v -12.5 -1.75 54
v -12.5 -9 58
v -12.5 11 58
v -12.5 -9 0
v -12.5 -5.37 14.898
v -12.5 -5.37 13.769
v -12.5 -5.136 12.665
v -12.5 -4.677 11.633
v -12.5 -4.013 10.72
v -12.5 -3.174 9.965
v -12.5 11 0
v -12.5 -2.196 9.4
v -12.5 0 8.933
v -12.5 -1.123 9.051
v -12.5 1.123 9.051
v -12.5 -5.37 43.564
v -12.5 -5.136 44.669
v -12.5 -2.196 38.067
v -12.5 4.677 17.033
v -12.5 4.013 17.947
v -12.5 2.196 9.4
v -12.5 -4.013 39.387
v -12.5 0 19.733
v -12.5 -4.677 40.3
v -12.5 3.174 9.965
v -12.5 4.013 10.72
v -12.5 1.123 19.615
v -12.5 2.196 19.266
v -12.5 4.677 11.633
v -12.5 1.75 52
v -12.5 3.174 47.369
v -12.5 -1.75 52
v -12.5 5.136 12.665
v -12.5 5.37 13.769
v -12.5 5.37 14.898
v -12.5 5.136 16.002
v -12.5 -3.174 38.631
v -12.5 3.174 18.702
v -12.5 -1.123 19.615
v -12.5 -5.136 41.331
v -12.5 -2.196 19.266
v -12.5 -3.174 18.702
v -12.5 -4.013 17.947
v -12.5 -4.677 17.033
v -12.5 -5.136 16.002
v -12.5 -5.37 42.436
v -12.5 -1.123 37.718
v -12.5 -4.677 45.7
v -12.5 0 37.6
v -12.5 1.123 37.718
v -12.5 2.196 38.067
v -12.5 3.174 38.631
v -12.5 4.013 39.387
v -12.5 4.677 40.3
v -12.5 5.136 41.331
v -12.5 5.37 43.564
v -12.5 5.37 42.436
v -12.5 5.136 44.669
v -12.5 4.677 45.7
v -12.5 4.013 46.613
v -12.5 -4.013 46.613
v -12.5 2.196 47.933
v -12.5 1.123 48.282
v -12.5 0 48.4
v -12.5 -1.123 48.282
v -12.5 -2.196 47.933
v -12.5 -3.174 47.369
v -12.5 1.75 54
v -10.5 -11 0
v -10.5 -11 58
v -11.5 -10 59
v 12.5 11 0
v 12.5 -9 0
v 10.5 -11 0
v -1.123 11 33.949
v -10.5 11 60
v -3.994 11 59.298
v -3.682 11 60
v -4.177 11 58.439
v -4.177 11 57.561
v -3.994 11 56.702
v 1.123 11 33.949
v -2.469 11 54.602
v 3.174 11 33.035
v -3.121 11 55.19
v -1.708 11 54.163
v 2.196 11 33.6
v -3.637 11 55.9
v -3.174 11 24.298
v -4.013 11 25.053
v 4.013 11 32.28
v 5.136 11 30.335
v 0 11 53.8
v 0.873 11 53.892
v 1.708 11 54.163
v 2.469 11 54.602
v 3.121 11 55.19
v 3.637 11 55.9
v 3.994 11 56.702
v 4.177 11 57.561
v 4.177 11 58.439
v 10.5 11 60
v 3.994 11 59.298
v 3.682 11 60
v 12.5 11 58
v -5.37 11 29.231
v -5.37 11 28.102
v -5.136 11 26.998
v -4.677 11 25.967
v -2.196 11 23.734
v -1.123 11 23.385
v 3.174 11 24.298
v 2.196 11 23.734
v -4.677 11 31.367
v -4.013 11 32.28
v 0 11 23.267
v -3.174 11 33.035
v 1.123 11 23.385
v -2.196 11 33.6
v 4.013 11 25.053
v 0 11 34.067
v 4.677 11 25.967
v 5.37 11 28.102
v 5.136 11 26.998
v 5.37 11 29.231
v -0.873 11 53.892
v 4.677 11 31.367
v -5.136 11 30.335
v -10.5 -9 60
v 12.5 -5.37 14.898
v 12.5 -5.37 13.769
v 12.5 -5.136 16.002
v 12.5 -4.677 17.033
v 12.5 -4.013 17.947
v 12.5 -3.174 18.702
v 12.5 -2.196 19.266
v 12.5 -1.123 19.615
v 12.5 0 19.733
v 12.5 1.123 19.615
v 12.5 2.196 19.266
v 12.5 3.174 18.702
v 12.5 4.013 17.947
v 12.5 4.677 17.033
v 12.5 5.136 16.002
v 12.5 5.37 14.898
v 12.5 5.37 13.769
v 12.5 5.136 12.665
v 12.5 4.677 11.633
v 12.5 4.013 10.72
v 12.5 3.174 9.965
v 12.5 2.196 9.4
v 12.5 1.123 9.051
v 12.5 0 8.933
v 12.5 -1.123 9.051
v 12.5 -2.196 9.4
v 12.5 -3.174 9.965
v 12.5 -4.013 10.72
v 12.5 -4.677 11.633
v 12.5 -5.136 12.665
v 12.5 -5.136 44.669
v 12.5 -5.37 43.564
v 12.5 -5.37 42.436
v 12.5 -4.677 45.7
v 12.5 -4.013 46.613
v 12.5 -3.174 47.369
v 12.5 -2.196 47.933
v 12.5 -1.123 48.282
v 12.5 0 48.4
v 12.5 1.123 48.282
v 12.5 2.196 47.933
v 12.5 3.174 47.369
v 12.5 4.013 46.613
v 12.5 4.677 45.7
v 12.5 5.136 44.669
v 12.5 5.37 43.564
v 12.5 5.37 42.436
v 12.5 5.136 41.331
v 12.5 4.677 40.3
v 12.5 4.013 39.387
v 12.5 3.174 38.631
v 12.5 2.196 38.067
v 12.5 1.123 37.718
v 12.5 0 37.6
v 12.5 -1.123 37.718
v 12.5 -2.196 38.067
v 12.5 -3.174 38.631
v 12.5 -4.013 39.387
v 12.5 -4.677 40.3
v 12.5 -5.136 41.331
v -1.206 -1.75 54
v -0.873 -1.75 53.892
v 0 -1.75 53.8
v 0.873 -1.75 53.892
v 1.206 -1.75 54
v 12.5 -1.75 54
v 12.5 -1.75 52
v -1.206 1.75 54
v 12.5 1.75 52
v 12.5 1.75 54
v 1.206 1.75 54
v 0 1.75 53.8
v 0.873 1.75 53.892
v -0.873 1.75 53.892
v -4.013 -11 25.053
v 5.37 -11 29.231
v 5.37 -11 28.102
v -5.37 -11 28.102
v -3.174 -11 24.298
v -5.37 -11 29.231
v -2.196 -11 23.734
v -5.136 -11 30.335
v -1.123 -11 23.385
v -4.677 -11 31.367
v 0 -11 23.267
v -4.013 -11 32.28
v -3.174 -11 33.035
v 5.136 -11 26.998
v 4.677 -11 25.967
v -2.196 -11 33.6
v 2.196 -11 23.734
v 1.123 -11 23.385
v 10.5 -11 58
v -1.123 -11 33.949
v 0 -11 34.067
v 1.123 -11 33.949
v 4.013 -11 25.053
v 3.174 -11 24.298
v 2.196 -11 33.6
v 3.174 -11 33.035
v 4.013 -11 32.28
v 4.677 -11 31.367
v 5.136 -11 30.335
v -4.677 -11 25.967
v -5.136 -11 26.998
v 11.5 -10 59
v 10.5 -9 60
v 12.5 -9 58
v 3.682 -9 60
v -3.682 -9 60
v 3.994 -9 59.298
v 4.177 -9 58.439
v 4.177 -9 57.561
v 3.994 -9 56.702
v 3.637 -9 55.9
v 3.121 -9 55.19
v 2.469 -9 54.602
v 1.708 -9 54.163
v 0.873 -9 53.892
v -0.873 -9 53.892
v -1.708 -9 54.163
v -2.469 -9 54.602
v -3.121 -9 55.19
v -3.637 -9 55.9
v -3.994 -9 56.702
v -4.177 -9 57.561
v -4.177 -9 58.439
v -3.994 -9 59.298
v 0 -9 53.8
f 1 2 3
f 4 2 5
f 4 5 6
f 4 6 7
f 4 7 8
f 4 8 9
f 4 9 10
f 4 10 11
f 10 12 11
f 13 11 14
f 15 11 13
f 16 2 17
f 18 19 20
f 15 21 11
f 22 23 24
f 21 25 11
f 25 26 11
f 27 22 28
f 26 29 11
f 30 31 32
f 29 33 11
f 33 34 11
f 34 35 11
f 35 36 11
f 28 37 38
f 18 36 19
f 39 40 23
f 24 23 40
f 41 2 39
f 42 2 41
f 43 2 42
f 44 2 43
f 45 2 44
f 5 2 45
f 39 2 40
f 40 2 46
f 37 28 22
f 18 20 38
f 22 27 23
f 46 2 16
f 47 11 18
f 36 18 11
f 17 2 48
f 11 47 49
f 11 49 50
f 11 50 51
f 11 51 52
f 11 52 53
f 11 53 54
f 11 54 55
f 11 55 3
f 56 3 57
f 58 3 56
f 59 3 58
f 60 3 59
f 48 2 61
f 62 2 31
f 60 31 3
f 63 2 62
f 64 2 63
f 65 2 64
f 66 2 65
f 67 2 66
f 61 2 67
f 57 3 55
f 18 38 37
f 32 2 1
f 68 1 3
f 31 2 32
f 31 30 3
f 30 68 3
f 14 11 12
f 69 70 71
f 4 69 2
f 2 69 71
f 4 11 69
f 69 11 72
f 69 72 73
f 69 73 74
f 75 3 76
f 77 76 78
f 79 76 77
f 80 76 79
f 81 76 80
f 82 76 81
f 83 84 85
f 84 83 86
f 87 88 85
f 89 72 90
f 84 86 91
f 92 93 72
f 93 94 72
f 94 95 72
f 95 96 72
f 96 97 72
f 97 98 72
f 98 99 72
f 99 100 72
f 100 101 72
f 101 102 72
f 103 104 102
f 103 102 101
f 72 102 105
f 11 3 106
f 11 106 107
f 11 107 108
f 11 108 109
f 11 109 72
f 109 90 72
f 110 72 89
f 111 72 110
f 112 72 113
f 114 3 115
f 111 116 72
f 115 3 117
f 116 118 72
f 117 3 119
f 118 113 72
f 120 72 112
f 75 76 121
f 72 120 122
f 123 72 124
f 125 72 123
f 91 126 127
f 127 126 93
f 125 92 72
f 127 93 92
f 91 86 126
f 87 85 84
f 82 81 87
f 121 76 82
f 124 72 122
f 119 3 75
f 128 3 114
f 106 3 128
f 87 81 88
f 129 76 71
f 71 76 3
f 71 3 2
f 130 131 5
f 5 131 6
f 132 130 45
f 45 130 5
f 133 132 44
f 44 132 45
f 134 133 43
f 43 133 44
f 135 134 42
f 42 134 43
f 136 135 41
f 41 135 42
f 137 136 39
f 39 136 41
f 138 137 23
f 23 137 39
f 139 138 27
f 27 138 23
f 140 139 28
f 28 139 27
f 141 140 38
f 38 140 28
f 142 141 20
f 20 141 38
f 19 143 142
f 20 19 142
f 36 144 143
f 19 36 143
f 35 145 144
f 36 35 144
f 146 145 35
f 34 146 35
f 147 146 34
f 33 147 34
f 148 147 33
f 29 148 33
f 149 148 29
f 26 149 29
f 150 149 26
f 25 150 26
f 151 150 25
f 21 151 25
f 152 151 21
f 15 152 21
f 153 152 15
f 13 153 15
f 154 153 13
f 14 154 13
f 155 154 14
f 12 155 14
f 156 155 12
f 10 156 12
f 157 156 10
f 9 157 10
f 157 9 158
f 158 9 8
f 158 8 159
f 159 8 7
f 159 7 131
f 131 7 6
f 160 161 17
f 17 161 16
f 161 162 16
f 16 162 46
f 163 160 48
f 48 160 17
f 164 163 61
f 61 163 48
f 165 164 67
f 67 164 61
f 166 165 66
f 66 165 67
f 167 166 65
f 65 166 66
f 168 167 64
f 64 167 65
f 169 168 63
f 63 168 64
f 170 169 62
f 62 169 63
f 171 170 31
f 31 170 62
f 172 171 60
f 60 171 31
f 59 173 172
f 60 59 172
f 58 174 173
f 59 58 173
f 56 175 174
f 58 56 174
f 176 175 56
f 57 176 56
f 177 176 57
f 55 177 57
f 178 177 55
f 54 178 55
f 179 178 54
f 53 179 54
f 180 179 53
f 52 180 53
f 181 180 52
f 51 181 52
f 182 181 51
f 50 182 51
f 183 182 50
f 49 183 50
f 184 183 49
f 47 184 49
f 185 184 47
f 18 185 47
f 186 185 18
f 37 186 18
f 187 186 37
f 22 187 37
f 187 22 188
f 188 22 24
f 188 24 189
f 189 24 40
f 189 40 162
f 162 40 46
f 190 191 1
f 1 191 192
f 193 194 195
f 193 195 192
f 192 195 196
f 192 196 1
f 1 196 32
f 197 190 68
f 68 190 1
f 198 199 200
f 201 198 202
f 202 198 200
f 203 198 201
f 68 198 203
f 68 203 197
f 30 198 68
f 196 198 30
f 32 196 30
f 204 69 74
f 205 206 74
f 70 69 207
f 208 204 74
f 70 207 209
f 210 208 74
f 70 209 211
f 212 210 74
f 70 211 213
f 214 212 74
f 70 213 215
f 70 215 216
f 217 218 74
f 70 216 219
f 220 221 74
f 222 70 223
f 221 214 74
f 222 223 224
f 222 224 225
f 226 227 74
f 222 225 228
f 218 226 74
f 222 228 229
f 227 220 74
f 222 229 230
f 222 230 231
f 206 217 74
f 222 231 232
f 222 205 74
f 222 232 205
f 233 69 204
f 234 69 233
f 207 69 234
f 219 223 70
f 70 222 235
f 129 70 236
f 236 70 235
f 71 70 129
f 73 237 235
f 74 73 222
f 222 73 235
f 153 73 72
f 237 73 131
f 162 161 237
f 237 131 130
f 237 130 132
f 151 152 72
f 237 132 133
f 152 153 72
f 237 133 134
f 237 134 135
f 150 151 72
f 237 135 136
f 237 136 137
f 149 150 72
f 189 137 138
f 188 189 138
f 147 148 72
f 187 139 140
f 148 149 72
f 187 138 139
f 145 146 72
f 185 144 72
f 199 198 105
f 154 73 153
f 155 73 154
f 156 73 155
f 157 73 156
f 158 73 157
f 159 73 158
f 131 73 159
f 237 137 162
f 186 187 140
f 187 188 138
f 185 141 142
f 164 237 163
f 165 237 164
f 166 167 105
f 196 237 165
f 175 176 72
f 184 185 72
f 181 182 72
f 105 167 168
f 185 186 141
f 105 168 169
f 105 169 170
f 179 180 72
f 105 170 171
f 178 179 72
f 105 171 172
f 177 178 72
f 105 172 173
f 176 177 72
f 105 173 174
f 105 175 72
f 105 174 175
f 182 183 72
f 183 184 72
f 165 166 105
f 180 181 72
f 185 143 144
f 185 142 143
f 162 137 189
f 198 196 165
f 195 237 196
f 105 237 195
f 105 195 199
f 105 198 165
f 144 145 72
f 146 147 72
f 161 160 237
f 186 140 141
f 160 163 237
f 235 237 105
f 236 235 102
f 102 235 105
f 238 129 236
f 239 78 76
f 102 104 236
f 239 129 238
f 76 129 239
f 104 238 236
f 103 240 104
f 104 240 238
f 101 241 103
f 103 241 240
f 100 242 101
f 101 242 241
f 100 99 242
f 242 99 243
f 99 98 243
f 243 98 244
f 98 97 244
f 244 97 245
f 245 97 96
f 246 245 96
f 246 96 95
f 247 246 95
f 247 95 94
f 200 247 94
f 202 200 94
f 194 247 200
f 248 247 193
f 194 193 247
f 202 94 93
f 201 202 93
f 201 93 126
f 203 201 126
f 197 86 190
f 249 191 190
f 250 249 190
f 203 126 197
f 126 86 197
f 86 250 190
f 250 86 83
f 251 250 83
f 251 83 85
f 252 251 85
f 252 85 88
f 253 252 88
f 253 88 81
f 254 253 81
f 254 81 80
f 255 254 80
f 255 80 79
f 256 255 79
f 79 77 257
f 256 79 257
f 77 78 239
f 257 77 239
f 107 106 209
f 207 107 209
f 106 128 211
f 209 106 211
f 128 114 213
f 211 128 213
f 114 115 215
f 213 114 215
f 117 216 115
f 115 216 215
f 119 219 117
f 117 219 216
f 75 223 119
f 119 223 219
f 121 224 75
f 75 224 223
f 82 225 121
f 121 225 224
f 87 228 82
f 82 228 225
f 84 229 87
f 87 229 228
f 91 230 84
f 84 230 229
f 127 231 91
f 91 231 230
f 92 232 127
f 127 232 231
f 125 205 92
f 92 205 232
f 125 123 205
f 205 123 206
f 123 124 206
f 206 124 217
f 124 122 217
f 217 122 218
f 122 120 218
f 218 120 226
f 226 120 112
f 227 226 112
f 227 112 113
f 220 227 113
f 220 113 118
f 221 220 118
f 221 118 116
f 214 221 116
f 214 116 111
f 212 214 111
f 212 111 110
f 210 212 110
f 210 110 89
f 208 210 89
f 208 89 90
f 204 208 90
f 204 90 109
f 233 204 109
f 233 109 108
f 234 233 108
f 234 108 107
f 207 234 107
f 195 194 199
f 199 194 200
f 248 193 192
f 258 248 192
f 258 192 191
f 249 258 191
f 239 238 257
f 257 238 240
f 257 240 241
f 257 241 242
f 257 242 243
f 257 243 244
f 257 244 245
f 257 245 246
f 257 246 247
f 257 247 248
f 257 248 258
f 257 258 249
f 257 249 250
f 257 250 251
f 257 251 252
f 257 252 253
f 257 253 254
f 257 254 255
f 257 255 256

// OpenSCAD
// PRUSA iteration3
// Y frame corners
// GNU GPL v3
// Josef Průša <iam@josefprusa.cz> and contributors
// http://www.reprap.org/wiki/Prusa_Mendel
// http://prusamendel.org

eps = 0.01;

height = 60; //47;
width = 25; //18;
depth = 22; //22;
r_hole = 5.4;

hole_distance = (height - 17) / 3;

bevel_cube = 100; // size not important, as long as big enough
bevel_cube_offset = bevel_cube/2 * cos(45);
bevel_cut = 1;

ziptie_height = 2.0;
ziptie_width = 3.5;



module corner_base(){
 translate([-width/2,-depth/2,0])cube([width,depth,height]);
}

module corner_holes(){
 translate([0,-depth/2,0]){
  // Bottom hole
  translate([0,depth/2,hole_distance]) rotate([0,90,0]) translate([0,0,-width/2-eps]) cylinder(h = width+2*eps, r=r_hole, $fn=30);
  // Top hole
  translate([0,depth/2,3*hole_distance]) rotate([0,90,0]) translate([0,0,-width/2-eps]) cylinder(h = width+2*eps, r=r_hole, $fn=30);
  // Middle hole
  translate([0,-eps,2*hole_distance]) rotate([0,0,90]) rotate([0,90,0]) cylinder(h = depth+2*eps, r=r_hole, $fn=30);

  // Washer hole
//  translate([0,-3,2*hole_distance]) rotate([0,0,90]) rotate([0,90,0]) translate([0,0,-5]) cylinder(h = 10, r=2*r_hole+0.2, $fn=30);

  // Top smooth rod insert
  // Smooth rod place
  translate([0,2,height-2]) rotate([0,90,90]) cylinder(h = depth, r=4.2, $fn=30);
  // Ziptie
  translate([-width/2-eps,depth/2-ziptie_width/2,height-8]) cube([width+2*eps,ziptie_width,ziptie_height]);
 }
}

module corner_fancy(){
  // Side corner cutouts
  translate([width/2+bevel_cube_offset-bevel_cut,-depth/2-bevel_cube_offset+bevel_cut,height/2]) rotate([0,0,-45-180]) translate([-bevel_cube/2,-bevel_cube/2,-bevel_cube/2]) cube([bevel_cube,bevel_cube,bevel_cube]);
  translate([-width/2-bevel_cube_offset+bevel_cut,-depth/2-bevel_cube_offset+bevel_cut,height/2]) rotate([0,0,45-180]) translate([-bevel_cube/2,-bevel_cube/2,-bevel_cube/2]) cube([bevel_cube,bevel_cube,bevel_cube]);

 // Top corner cutouts
  translate([width/2+bevel_cube_offset-bevel_cut,0,bevel_cube_offset+height-bevel_cut]) rotate([0,45,0]) translate([-bevel_cube/2,-bevel_cube/2,-bevel_cube/2]) cube([bevel_cube,bevel_cube,bevel_cube]);
  translate([-width/2-bevel_cube_offset+bevel_cut,0,bevel_cube_offset+height-bevel_cut]) rotate([0,-45,0]) translate([-bevel_cube/2,-bevel_cube/2,-bevel_cube/2]) cube([bevel_cube,bevel_cube,bevel_cube]);
  rotate([0,0,90]) translate([-depth/2-bevel_cube_offset+bevel_cut,0,bevel_cube_offset+height-bevel_cut]) rotate([0,-45,0]) translate([-bevel_cube/2,-bevel_cube/2,-bevel_cube/2]) cube([bevel_cube,bevel_cube,bevel_cube]);
}


// Final part
module corner(){
 // Rotate the part for better printing
// translate([0,0,depth/2]) rotate([-90,0,0]) difference(){
 difference() {
  corner_base();
  corner_holes();
  corner_fancy();
 }
}

echo("hole_distance=", hole_distance);

corner();
